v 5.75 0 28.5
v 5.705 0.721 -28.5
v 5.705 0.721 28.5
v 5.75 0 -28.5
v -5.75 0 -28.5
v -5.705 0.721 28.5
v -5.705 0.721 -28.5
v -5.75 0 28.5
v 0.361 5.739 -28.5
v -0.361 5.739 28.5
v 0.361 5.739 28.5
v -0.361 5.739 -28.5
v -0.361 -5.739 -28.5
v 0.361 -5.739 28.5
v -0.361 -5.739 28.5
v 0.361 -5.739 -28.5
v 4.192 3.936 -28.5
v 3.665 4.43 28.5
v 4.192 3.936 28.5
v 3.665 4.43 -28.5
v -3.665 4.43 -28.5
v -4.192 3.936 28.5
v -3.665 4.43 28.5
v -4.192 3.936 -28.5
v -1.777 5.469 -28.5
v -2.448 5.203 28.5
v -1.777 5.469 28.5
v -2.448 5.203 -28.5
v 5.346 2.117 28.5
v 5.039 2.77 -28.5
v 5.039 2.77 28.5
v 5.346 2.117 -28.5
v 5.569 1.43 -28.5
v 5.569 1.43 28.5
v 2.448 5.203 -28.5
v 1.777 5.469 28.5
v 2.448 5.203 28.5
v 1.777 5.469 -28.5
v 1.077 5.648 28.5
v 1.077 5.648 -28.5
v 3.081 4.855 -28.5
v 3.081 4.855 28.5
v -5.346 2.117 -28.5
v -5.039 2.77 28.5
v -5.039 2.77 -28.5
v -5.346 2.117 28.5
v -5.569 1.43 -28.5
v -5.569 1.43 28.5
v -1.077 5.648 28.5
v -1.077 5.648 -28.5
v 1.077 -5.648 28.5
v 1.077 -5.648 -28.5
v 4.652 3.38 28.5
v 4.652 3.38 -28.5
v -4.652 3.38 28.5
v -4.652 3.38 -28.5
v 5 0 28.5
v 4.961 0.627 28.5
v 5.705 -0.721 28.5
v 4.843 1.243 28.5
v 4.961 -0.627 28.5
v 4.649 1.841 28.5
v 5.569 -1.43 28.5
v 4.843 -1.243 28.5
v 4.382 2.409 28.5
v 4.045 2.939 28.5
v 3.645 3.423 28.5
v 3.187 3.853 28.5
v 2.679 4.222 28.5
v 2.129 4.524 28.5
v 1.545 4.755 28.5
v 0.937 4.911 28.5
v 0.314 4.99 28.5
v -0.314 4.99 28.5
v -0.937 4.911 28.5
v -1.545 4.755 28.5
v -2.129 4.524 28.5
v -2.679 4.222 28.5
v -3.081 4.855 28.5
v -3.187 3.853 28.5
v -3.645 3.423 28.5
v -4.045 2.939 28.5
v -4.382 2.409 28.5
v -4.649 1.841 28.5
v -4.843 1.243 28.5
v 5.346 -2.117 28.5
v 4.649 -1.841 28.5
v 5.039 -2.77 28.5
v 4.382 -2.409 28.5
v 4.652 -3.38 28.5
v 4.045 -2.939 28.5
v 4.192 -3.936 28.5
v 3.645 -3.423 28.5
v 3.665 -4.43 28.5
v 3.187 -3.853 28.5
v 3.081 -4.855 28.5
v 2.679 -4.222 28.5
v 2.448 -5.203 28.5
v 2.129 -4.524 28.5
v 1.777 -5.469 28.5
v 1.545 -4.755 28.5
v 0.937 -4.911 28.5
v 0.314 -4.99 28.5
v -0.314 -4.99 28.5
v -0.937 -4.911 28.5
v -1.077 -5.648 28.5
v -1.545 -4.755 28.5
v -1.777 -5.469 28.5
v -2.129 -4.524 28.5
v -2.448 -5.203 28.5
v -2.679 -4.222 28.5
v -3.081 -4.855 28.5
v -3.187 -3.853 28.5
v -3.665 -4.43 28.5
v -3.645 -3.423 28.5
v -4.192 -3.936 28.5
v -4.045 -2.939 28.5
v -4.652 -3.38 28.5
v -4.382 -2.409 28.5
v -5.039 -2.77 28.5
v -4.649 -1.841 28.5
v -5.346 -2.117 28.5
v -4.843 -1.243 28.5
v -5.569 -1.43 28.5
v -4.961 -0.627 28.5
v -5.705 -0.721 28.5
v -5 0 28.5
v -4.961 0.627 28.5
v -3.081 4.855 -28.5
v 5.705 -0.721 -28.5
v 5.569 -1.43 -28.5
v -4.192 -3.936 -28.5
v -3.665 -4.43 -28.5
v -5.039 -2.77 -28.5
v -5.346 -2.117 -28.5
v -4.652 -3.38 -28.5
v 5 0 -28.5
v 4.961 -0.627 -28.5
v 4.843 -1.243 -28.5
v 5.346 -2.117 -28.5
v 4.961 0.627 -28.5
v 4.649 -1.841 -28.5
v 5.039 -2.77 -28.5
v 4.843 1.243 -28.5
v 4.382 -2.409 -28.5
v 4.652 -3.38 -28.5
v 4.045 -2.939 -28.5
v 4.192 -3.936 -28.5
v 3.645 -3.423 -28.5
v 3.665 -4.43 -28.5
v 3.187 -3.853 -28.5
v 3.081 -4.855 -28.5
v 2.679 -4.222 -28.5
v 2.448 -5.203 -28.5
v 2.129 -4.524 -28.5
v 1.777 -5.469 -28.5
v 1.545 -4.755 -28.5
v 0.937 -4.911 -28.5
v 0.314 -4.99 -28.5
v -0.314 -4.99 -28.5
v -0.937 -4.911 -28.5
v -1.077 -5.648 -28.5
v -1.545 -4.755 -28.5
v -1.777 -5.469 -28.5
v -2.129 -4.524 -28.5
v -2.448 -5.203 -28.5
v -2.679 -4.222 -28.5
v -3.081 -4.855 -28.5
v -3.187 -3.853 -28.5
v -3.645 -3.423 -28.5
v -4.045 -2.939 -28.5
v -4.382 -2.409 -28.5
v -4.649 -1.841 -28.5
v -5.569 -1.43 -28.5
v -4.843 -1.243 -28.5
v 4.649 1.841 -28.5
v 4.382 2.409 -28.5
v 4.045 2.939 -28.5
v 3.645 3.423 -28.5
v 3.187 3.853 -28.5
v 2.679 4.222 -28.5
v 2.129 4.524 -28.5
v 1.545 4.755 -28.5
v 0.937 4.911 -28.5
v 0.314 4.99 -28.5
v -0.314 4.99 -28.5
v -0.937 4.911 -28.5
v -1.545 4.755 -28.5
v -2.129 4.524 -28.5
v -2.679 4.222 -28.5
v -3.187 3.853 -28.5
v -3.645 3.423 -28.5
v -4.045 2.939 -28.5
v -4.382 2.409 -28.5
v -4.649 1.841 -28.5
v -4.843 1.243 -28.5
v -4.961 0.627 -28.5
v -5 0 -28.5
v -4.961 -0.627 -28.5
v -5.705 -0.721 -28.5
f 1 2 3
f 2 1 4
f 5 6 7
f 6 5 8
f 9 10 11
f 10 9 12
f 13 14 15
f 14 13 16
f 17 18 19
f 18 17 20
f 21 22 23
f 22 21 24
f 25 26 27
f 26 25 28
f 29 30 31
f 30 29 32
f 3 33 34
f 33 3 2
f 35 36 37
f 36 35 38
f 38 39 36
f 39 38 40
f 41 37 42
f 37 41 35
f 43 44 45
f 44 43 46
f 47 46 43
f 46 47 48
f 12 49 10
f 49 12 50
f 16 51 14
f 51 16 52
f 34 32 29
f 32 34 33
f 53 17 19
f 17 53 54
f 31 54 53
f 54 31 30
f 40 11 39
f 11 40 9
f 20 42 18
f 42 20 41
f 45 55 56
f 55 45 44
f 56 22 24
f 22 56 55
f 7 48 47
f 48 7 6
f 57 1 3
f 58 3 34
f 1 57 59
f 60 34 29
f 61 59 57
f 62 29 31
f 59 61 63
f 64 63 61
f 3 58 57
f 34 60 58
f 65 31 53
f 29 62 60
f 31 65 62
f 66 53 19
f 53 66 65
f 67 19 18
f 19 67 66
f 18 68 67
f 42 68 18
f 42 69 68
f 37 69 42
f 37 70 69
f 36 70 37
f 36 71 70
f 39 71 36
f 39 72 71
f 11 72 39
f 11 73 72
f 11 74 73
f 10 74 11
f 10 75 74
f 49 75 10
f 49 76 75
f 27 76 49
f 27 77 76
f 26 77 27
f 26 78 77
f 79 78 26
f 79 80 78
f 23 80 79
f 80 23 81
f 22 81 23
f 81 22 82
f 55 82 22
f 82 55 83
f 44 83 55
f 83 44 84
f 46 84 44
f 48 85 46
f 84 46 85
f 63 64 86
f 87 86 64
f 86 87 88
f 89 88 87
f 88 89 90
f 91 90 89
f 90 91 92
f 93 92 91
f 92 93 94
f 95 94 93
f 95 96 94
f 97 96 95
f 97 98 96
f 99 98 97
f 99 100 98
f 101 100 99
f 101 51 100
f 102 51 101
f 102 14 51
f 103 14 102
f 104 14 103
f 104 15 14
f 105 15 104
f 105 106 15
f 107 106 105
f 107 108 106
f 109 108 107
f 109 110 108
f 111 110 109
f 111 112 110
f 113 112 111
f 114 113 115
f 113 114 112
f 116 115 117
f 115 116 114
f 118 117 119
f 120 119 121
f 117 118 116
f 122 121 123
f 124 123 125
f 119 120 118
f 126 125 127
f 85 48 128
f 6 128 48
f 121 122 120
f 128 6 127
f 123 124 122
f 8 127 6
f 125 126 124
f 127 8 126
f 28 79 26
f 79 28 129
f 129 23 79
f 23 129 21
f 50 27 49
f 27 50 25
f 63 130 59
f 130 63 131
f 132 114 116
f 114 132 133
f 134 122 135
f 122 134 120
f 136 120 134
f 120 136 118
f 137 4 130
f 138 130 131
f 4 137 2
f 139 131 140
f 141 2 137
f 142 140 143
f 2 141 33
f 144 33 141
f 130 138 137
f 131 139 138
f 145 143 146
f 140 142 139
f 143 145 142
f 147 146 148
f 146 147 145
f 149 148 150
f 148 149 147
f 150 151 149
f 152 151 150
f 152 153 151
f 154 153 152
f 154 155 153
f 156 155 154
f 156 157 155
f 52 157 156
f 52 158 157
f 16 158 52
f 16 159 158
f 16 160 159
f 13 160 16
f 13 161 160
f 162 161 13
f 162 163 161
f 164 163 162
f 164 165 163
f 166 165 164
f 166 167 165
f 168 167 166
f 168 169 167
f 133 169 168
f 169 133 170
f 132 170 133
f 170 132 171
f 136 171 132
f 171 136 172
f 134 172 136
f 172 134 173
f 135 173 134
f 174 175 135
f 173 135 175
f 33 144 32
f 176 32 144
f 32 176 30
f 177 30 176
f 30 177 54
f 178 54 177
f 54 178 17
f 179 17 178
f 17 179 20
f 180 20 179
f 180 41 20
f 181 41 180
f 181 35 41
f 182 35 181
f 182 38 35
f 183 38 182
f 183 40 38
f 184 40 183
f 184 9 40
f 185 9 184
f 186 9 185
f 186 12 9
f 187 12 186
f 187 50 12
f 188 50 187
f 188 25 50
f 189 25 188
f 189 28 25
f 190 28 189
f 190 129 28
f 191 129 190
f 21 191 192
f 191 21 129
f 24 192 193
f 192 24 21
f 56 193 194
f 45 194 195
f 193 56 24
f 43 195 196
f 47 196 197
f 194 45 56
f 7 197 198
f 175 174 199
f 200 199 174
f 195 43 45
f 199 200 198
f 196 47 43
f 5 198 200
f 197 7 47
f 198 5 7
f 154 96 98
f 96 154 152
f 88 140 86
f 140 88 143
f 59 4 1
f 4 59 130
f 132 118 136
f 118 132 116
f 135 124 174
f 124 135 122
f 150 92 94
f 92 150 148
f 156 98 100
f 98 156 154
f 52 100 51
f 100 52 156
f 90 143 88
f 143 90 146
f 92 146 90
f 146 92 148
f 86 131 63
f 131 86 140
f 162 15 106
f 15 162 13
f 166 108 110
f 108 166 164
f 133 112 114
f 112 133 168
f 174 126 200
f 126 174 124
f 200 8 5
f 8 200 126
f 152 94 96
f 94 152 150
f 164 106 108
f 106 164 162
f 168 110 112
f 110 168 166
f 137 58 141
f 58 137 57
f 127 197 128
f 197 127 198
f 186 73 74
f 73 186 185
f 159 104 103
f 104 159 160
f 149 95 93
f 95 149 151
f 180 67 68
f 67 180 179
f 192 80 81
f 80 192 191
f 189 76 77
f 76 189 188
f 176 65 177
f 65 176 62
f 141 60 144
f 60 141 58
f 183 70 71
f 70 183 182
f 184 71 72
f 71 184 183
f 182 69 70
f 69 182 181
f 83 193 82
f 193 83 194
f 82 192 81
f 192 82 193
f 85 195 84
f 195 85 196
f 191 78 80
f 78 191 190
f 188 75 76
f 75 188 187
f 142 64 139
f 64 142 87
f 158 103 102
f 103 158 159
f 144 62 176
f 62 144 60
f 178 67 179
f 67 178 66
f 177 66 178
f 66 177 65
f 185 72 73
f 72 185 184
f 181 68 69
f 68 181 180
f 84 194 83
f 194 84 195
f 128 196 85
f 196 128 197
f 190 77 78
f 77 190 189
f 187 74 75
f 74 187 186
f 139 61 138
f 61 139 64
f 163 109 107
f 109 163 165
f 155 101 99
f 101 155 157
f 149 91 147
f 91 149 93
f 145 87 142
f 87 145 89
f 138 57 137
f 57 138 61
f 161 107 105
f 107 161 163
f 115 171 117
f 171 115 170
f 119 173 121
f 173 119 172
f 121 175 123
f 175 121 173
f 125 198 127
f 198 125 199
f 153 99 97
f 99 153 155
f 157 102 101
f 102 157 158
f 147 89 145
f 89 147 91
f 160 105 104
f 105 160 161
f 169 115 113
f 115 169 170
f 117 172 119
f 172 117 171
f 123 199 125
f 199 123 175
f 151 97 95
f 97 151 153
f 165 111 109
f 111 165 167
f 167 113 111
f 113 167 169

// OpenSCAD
$fn = 50;


difference() {
	union() {
		translate(v = [0, 0, -28.5000000000]) {
			cylinder(h = 57, r = 5.7500000000);
		}
	}
	union() {
		translate(v = [0, 0, -100.0000000000]) {
			cylinder(h = 200, r = 5.0000000000);
		}
	}
}
